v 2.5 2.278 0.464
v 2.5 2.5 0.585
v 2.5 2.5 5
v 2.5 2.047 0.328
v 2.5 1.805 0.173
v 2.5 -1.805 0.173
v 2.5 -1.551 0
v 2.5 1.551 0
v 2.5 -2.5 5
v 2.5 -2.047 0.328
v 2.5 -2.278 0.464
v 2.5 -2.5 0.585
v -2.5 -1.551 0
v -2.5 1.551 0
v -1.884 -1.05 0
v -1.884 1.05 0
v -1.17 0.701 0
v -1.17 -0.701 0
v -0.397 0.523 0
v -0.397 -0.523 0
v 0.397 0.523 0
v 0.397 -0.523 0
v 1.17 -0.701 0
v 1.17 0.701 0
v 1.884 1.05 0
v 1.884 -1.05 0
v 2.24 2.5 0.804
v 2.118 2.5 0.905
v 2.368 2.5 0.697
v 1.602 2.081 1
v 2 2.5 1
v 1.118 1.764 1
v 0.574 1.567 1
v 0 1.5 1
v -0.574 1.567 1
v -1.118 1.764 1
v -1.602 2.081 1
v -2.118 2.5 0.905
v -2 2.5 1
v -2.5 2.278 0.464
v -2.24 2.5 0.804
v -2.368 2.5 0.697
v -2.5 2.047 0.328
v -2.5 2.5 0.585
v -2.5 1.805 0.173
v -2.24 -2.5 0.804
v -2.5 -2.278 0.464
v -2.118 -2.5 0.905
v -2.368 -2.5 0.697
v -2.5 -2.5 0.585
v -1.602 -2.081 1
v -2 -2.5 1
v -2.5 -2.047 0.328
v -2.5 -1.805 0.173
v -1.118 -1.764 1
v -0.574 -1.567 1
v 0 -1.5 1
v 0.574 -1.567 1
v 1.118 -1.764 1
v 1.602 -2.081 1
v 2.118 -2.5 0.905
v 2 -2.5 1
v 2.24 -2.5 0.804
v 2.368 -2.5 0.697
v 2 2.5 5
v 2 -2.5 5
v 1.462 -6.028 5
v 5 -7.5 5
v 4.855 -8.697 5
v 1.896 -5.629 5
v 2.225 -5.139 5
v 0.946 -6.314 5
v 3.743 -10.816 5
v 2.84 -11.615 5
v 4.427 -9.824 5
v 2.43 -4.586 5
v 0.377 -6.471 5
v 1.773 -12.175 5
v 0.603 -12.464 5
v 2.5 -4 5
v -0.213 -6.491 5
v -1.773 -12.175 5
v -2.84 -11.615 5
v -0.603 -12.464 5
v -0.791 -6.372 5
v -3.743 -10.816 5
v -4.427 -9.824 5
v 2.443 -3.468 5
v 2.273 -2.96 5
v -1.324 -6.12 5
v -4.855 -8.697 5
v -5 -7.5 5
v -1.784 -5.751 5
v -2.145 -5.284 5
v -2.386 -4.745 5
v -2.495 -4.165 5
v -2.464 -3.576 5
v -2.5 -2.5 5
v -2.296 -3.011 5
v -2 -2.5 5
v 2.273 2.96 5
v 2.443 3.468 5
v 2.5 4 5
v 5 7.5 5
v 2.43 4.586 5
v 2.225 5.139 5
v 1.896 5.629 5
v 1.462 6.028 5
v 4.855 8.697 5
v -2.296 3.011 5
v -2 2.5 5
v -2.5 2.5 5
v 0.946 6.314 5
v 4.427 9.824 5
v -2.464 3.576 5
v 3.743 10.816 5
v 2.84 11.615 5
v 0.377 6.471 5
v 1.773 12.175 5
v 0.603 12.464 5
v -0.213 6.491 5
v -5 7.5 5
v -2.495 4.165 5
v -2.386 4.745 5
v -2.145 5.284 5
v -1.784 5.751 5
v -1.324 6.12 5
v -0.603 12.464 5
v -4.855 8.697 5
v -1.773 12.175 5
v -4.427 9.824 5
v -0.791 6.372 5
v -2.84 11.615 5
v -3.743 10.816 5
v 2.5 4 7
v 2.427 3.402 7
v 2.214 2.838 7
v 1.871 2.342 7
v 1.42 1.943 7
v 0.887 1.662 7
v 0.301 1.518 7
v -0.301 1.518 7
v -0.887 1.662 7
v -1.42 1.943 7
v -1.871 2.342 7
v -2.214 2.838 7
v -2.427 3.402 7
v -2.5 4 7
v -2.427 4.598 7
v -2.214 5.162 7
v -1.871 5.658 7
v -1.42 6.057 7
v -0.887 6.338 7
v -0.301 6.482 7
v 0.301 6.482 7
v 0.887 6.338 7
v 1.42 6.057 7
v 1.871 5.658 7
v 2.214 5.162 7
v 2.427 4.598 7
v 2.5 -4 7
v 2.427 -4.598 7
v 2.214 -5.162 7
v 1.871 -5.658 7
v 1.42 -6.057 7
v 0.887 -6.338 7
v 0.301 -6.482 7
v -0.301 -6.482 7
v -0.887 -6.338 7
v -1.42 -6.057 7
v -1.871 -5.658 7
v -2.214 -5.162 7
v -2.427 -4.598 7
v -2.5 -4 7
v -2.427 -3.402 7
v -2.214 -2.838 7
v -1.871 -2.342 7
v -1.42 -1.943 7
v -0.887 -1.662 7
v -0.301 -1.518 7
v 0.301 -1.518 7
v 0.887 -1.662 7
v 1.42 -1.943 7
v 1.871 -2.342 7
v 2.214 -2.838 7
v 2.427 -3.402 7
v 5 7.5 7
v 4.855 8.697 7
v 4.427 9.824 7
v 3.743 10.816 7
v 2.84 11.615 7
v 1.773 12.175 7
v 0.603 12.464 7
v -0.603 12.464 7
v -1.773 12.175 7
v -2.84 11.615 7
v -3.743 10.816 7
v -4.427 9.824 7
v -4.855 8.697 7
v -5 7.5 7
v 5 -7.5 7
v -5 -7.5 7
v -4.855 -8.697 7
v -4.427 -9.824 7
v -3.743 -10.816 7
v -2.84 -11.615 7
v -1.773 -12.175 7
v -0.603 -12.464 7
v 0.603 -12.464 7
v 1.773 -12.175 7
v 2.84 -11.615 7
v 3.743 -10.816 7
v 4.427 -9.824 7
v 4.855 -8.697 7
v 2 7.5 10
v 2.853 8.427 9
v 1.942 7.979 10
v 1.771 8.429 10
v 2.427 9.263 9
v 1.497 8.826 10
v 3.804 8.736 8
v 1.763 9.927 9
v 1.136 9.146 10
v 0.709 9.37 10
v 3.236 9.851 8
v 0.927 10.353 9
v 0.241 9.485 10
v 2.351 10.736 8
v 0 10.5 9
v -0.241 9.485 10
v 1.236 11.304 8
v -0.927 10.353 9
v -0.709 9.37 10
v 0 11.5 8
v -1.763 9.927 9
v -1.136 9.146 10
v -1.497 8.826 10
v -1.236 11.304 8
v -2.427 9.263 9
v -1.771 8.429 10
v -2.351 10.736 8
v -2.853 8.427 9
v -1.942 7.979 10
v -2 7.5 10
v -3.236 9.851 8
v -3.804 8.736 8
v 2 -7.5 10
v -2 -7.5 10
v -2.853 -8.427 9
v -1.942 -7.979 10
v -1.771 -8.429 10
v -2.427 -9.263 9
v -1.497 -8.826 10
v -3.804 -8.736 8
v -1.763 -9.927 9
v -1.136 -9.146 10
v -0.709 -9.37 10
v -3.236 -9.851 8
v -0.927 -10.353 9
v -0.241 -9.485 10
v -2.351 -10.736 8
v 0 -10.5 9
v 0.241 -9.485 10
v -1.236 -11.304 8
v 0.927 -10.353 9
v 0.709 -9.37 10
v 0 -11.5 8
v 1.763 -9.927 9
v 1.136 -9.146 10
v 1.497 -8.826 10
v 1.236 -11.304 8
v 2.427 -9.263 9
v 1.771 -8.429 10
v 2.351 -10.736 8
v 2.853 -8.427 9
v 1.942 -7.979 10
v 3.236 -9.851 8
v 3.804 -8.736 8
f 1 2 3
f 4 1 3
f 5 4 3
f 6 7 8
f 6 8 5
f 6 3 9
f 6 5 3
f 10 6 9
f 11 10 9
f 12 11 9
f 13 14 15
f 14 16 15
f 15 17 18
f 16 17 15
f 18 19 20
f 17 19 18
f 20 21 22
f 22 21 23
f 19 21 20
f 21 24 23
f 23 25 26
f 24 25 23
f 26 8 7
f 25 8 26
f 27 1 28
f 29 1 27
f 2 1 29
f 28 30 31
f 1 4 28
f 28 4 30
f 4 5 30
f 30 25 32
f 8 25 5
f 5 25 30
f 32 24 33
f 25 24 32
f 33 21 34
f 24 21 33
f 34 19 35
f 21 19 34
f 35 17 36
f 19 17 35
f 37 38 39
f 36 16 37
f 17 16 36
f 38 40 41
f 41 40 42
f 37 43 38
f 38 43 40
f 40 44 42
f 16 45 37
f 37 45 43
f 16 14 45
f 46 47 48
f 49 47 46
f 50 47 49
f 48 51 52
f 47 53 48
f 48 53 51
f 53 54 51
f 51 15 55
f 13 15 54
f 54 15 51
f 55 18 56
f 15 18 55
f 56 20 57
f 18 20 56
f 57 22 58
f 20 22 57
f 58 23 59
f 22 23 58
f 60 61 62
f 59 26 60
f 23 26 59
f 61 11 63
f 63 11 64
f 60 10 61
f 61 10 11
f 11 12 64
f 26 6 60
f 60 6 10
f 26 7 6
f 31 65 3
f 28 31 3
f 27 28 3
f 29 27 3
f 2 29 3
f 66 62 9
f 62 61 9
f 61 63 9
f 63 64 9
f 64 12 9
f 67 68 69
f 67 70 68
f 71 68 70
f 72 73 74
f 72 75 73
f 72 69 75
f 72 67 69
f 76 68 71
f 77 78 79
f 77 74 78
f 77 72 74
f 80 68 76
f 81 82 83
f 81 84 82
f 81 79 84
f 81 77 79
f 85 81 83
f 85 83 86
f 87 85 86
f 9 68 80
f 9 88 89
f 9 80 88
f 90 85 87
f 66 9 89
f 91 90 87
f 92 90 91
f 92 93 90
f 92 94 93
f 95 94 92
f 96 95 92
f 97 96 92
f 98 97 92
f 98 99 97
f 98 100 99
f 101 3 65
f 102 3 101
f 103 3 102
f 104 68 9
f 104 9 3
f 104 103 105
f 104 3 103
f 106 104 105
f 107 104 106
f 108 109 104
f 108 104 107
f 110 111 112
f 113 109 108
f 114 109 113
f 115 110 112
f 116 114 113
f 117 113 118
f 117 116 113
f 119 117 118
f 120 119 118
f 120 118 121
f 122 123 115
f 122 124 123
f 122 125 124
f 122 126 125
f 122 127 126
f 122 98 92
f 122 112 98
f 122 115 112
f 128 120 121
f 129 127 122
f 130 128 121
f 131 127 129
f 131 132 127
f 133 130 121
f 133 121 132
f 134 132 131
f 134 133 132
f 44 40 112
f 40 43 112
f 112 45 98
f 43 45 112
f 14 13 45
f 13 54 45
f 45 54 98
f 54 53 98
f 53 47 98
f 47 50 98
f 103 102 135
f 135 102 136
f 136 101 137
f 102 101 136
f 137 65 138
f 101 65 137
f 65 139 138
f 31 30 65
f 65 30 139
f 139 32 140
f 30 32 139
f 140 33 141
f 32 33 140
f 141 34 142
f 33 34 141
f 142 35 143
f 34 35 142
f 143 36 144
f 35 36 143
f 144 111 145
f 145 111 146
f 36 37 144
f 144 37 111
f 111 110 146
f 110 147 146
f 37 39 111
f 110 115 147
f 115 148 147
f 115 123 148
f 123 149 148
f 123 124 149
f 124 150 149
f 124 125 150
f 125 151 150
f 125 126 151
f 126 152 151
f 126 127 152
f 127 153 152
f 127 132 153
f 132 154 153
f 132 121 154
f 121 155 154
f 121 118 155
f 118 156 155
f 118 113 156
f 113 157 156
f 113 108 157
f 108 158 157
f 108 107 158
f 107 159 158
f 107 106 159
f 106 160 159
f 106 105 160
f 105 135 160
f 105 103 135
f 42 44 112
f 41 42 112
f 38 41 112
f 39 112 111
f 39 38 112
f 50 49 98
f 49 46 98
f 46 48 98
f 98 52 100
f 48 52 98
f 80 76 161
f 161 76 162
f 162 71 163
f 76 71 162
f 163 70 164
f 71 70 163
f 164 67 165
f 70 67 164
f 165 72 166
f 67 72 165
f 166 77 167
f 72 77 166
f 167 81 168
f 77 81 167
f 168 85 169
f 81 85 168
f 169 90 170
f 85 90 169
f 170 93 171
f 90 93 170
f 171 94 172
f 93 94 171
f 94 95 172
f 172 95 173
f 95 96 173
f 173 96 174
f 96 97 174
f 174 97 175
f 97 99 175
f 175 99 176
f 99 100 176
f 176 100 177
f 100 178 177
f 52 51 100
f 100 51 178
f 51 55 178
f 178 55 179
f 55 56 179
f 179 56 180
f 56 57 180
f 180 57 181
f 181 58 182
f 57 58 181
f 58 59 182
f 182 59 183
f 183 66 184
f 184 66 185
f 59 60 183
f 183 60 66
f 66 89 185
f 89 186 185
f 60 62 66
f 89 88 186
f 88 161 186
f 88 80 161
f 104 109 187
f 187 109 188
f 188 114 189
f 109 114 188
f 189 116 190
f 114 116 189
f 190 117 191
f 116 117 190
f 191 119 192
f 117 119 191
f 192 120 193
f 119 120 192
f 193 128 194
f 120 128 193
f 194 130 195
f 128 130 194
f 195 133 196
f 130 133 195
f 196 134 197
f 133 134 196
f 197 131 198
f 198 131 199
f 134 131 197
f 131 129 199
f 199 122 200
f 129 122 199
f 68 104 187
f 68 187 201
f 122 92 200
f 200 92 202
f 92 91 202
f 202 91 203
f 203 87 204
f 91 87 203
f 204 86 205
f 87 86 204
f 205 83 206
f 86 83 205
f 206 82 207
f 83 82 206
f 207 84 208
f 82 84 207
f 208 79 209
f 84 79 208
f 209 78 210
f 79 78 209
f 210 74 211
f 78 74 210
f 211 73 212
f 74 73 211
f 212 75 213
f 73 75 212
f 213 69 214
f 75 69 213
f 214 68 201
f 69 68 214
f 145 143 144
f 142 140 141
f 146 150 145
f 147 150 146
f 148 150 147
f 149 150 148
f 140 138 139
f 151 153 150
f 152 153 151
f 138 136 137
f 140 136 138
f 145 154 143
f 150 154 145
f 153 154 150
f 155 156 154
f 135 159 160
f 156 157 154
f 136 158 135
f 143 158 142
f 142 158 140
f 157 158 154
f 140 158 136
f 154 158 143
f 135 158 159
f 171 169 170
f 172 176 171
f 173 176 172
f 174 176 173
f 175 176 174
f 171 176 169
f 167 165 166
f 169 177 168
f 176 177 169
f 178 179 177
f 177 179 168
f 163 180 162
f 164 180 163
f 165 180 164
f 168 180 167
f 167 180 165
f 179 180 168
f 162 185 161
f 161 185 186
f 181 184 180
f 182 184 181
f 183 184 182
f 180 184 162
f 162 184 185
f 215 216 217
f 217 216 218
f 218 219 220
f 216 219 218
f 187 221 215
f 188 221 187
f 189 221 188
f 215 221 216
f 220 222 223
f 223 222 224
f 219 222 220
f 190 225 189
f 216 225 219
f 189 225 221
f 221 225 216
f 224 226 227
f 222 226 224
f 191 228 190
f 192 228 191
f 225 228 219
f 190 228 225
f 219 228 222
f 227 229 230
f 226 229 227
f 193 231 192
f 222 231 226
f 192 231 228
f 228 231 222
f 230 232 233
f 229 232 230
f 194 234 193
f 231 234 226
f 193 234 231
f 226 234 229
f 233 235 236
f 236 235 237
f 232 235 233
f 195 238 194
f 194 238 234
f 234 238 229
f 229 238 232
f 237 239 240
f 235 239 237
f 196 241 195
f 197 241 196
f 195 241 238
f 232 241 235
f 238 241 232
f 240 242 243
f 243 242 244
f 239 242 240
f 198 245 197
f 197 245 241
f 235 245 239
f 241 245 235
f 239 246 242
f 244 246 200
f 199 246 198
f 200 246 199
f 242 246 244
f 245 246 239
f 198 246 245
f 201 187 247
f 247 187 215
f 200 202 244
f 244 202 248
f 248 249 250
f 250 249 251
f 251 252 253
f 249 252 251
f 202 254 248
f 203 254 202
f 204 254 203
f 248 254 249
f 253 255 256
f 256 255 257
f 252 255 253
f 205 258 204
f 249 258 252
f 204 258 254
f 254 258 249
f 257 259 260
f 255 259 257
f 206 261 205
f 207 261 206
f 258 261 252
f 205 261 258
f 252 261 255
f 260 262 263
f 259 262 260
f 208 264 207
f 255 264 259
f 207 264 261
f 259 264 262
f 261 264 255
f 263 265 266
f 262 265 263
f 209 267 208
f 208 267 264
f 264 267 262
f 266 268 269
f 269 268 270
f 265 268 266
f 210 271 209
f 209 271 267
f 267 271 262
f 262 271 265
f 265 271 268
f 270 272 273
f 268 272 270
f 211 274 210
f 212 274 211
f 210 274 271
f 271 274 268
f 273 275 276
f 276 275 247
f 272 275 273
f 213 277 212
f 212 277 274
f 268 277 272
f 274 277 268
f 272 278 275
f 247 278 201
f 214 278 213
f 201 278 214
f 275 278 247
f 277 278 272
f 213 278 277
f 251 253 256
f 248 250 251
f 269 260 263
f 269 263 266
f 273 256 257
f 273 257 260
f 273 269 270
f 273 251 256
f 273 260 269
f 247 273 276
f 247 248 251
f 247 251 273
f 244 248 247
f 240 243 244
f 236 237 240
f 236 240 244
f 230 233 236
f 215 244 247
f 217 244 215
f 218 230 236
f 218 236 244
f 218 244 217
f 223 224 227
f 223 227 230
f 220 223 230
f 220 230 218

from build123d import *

# Parameters (mm, degrees)
PAD_DEPTH       = 5
PAD001_DEPTH    = 5
POCKET_DEPTH    = 5
SKETCH003_W     = 5
SKETCH003_H     = 1.5
POCKET001_DEPTH = 5
SKETCH004_R     = 2.5
POCKET002_DEPTH = 2
CHAMFER_SIZE    = 3
CHAMFER001_SIZE = 1


with BuildPart() as part:
    # Sketch → Pad (new body)
    with BuildSketch(Plane.XY):
        with BuildLine():
            ThreePointArc((2.5, 7.5), (0, 10), (-2.5, 7.5))
            Line((-2.5, 7.5), (-2.5, -7.5))
            ThreePointArc((-2.5, -7.5), (0, -10), (2.5, -7.5))
            Line((2.5, 7.5), (2.5, -7.5))
        make_face()
    extrude(amount=PAD_DEPTH)

    # Sketch001 (on Face6 of Pad) → Pad001 (join)
    with BuildSketch(Plane.XY.offset(5)):
        with BuildLine():
            ThreePointArc((5, 7.5), (0, 12.5), (-5, 7.5))
            Line((-5, 7.5), (-5, -7.5))
            ThreePointArc((-5, -7.5), (0, -12.5), (5, -7.5))
            Line((5, 7.5), (5, -7.5))
        make_face()
    extrude(amount=PAD001_DEPTH)

    # Sketch002 → Pocket (cut)
    with BuildSketch(Plane(origin=(0, 0, 0), x_dir=(1, 0, 0), z_dir=(0, 0, -1))):
        with BuildLine():
            ThreePointArc((2.5, 7.5), (0, 10), (-2.5, 7.5))
            Line((-2.5, 7.5), (-2.5, 4))
            ThreePointArc((-2.5, 4), (0, 1.5), (2.5, 4))
            Line((2.5, 7.5), (2.5, 4))
        make_face()
        with BuildLine():
            ThreePointArc((-2.5, -7.5), (0, -10), (2.5, -7.5))
            Line((2.5, -7.5), (2.5, -4))
            ThreePointArc((2.5, -4), (0, -1.5), (-2.5, -4))
            Line((-2.5, -7.5), (-2.5, -4))
        make_face()
    extrude(amount=-POCKET_DEPTH, mode=Mode.SUBTRACT)

    # Sketch003 (on Face10 of Pocket) → Pocket001 (cut)
    with BuildSketch(Plane(origin=(0, 0, 0), x_dir=(1, 0, 0), z_dir=(0, 0, -1))):
        with Locations((0, 3.25)):
            Rectangle(SKETCH003_W, SKETCH003_H)
    pocket001 = extrude(amount=-POCKET001_DEPTH, mode=Mode.SUBTRACT)

    # Mirrored: Pocket001 across XZ
    add(pocket001.mirror(Plane.XZ), mode=Mode.SUBTRACT)

    # Sketch004 (on Face6 of Mirrored) → Pocket002 (cut)
    with BuildSketch(Plane(origin=(0, 0, 5), x_dir=(1, 0, 0), z_dir=(0, 0, -1))):
        with Locations((0, -4)):
            Circle(SKETCH004_R)
        with Locations((0, 4)):
            Circle(SKETCH004_R)
    extrude(amount=-POCKET002_DEPTH, mode=Mode.SUBTRACT)

    # Chamfer
    chamfer_edges = [part.edges().sort_by_distance(p)[0] for p in [
        (0, -12.5, 10),
    ]]
    chamfer(chamfer_edges, length=CHAMFER_SIZE)

    # Chamfer001
    chamfer001_edges = [part.edges().sort_by_distance(p)[0] for p in [
        (0, -1.5, 0),
        (0, 1.5, 0),
    ]]
    chamfer(chamfer001_edges, length=CHAMFER001_SIZE)


solid = part.part
